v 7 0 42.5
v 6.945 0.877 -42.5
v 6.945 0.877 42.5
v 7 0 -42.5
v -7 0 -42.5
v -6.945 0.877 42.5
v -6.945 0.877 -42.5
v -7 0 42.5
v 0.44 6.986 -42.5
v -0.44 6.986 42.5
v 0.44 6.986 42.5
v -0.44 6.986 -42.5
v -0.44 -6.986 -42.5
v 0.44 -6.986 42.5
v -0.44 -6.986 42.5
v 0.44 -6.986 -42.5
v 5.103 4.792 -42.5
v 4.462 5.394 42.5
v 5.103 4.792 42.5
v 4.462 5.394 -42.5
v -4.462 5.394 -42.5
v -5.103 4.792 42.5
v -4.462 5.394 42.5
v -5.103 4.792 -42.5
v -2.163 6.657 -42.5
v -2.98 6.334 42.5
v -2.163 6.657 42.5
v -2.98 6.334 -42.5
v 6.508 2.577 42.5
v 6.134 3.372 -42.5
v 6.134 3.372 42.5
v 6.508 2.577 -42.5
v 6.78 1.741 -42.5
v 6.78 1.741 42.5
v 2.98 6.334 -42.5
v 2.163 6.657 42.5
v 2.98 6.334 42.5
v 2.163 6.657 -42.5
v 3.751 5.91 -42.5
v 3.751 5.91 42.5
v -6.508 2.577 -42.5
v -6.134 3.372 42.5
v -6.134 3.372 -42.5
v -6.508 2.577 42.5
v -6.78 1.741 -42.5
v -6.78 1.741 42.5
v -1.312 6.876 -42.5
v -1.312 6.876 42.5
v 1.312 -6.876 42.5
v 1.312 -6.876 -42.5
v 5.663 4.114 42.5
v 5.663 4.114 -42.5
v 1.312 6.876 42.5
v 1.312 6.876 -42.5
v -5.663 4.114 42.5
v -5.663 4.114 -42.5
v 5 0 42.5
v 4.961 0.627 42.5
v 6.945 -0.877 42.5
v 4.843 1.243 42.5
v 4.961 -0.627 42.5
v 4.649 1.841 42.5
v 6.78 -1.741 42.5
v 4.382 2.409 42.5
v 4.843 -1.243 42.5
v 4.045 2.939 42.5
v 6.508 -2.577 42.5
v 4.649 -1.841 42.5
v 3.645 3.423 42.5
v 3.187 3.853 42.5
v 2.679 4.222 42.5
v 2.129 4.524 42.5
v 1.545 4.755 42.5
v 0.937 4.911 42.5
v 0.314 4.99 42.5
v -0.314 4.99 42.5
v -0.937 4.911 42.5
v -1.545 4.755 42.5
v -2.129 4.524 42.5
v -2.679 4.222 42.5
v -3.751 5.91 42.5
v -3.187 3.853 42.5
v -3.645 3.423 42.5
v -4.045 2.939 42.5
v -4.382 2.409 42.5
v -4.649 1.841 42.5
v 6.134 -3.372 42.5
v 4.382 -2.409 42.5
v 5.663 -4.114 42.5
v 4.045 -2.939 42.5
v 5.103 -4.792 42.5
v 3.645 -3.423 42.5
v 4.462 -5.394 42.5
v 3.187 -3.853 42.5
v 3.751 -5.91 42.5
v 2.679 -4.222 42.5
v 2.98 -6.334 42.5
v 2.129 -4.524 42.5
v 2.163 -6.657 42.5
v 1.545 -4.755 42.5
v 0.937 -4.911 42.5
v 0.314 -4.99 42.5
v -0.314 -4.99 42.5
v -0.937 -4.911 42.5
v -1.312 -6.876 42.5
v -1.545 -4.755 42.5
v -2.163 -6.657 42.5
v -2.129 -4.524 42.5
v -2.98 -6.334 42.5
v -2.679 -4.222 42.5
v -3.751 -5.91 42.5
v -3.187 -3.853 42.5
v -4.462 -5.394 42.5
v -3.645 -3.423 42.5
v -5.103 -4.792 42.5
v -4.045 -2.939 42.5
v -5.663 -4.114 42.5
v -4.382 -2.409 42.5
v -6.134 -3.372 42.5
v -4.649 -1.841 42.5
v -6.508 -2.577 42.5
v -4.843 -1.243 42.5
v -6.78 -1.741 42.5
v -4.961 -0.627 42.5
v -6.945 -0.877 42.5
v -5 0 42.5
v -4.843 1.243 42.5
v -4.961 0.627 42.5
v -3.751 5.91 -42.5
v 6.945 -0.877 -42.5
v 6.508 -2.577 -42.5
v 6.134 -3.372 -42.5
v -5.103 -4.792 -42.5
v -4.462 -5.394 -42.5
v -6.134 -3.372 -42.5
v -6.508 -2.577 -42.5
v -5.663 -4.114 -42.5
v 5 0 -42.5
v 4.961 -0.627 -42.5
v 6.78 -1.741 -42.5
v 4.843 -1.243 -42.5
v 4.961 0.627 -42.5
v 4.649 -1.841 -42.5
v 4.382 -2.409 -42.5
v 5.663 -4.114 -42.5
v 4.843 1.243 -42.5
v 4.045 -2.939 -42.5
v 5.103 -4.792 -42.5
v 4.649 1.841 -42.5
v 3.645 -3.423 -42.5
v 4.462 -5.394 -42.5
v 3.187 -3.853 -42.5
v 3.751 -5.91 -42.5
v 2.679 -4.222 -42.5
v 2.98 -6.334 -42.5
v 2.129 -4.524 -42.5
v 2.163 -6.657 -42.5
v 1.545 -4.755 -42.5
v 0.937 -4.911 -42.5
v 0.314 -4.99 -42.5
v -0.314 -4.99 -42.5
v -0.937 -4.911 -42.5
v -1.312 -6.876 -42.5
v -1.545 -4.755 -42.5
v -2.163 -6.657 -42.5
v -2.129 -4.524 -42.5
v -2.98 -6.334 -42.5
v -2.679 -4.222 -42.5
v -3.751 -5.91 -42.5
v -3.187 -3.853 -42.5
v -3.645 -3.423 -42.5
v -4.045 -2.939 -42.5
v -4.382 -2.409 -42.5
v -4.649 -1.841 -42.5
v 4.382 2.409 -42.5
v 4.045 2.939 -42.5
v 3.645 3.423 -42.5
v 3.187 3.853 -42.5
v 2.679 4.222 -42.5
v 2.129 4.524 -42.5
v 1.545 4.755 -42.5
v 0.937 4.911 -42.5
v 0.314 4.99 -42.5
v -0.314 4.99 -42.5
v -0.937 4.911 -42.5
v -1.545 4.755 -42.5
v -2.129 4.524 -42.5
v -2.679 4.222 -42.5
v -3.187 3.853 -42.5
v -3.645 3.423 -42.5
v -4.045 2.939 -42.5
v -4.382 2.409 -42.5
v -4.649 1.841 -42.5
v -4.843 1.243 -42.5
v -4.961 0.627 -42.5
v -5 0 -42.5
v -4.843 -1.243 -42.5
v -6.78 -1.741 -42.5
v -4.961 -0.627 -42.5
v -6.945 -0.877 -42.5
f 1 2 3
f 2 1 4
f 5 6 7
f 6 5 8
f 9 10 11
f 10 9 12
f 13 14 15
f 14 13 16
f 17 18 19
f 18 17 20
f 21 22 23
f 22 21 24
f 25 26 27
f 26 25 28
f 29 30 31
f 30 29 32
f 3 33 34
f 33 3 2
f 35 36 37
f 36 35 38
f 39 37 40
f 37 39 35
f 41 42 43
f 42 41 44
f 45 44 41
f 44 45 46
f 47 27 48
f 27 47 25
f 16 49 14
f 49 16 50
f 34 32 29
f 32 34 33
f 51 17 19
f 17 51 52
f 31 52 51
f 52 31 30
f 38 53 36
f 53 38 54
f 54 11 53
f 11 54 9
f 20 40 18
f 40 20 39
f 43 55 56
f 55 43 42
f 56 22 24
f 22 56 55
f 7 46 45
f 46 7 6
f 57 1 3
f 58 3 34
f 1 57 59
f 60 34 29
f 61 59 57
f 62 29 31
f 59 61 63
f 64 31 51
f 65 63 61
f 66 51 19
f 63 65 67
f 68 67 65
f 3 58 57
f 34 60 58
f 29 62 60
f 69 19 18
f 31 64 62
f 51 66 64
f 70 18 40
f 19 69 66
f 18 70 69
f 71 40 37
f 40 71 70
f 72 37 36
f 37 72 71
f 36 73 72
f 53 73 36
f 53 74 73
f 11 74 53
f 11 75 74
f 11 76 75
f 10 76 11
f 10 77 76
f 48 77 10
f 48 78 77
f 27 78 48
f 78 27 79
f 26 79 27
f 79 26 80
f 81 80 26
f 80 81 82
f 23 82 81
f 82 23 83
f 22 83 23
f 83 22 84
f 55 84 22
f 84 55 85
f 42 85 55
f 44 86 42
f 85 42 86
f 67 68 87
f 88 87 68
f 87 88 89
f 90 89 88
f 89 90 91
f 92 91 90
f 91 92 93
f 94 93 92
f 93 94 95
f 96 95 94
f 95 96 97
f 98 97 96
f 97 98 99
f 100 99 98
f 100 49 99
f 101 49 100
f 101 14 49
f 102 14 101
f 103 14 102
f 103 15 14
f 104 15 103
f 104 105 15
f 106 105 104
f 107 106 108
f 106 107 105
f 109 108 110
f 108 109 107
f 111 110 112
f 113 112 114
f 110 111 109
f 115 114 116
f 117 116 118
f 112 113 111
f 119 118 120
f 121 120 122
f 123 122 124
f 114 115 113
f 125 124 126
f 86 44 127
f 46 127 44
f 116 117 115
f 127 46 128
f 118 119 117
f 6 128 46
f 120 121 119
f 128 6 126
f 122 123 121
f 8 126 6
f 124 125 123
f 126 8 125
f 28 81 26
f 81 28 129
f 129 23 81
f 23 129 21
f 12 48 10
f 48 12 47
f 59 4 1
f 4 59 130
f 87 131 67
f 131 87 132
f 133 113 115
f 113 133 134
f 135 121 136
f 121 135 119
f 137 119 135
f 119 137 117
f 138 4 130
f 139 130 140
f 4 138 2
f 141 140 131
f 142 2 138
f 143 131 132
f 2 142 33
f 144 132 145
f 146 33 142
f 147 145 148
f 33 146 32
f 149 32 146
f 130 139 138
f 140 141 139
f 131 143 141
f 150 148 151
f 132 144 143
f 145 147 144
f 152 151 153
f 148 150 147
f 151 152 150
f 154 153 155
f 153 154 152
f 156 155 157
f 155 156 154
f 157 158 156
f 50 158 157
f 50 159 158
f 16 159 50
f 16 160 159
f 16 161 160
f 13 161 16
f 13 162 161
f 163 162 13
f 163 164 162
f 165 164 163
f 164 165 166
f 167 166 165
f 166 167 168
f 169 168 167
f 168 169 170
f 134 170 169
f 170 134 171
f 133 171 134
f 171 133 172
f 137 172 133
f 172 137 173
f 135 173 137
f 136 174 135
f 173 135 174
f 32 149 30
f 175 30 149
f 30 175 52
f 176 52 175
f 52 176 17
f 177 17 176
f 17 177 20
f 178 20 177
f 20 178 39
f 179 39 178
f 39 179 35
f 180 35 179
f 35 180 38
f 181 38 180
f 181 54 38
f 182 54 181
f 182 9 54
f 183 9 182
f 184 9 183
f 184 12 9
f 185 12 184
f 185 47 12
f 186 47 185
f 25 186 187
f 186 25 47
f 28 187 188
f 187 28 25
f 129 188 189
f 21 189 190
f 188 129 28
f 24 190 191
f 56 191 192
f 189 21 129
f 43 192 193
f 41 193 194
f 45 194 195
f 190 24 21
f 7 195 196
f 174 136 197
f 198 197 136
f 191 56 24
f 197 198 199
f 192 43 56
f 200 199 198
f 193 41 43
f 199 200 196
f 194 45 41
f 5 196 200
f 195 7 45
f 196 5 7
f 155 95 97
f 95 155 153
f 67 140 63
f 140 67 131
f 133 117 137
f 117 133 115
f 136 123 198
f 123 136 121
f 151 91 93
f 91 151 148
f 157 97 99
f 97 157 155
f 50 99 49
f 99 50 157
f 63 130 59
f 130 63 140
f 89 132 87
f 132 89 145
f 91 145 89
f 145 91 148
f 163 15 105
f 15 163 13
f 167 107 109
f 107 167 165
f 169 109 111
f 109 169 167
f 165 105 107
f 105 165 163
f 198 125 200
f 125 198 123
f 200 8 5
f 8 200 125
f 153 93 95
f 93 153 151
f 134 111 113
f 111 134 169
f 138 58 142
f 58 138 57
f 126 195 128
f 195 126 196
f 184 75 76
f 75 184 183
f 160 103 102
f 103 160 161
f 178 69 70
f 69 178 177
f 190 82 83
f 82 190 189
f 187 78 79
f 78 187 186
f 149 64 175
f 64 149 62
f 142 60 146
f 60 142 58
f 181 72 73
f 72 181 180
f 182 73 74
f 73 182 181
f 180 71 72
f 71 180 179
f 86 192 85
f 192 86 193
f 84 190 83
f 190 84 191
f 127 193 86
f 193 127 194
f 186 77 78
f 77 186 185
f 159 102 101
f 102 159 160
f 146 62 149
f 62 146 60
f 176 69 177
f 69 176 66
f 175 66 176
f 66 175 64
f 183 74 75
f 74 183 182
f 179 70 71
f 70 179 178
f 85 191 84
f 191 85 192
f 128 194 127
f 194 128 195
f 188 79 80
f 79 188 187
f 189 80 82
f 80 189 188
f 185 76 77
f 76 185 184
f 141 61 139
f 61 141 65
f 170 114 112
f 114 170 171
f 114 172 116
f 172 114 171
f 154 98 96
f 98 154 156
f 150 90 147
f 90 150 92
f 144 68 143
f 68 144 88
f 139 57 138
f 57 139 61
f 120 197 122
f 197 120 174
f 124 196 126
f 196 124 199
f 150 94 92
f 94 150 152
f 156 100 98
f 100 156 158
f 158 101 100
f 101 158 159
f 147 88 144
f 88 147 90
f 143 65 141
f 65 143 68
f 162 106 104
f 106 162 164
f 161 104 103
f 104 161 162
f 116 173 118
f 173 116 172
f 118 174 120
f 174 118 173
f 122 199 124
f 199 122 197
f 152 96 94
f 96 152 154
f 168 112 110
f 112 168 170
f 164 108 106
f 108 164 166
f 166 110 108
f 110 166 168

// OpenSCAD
$fn = 50;


difference() {
	union() {
		translate(v = [0, 0, -42.5000000000]) {
			cylinder(h = 85, r = 7.0000000000);
		}
	}
	union() {
		translate(v = [0, 0, -100.0000000000]) {
			cylinder(h = 200, r = 5.0000000000);
		}
	}
}
